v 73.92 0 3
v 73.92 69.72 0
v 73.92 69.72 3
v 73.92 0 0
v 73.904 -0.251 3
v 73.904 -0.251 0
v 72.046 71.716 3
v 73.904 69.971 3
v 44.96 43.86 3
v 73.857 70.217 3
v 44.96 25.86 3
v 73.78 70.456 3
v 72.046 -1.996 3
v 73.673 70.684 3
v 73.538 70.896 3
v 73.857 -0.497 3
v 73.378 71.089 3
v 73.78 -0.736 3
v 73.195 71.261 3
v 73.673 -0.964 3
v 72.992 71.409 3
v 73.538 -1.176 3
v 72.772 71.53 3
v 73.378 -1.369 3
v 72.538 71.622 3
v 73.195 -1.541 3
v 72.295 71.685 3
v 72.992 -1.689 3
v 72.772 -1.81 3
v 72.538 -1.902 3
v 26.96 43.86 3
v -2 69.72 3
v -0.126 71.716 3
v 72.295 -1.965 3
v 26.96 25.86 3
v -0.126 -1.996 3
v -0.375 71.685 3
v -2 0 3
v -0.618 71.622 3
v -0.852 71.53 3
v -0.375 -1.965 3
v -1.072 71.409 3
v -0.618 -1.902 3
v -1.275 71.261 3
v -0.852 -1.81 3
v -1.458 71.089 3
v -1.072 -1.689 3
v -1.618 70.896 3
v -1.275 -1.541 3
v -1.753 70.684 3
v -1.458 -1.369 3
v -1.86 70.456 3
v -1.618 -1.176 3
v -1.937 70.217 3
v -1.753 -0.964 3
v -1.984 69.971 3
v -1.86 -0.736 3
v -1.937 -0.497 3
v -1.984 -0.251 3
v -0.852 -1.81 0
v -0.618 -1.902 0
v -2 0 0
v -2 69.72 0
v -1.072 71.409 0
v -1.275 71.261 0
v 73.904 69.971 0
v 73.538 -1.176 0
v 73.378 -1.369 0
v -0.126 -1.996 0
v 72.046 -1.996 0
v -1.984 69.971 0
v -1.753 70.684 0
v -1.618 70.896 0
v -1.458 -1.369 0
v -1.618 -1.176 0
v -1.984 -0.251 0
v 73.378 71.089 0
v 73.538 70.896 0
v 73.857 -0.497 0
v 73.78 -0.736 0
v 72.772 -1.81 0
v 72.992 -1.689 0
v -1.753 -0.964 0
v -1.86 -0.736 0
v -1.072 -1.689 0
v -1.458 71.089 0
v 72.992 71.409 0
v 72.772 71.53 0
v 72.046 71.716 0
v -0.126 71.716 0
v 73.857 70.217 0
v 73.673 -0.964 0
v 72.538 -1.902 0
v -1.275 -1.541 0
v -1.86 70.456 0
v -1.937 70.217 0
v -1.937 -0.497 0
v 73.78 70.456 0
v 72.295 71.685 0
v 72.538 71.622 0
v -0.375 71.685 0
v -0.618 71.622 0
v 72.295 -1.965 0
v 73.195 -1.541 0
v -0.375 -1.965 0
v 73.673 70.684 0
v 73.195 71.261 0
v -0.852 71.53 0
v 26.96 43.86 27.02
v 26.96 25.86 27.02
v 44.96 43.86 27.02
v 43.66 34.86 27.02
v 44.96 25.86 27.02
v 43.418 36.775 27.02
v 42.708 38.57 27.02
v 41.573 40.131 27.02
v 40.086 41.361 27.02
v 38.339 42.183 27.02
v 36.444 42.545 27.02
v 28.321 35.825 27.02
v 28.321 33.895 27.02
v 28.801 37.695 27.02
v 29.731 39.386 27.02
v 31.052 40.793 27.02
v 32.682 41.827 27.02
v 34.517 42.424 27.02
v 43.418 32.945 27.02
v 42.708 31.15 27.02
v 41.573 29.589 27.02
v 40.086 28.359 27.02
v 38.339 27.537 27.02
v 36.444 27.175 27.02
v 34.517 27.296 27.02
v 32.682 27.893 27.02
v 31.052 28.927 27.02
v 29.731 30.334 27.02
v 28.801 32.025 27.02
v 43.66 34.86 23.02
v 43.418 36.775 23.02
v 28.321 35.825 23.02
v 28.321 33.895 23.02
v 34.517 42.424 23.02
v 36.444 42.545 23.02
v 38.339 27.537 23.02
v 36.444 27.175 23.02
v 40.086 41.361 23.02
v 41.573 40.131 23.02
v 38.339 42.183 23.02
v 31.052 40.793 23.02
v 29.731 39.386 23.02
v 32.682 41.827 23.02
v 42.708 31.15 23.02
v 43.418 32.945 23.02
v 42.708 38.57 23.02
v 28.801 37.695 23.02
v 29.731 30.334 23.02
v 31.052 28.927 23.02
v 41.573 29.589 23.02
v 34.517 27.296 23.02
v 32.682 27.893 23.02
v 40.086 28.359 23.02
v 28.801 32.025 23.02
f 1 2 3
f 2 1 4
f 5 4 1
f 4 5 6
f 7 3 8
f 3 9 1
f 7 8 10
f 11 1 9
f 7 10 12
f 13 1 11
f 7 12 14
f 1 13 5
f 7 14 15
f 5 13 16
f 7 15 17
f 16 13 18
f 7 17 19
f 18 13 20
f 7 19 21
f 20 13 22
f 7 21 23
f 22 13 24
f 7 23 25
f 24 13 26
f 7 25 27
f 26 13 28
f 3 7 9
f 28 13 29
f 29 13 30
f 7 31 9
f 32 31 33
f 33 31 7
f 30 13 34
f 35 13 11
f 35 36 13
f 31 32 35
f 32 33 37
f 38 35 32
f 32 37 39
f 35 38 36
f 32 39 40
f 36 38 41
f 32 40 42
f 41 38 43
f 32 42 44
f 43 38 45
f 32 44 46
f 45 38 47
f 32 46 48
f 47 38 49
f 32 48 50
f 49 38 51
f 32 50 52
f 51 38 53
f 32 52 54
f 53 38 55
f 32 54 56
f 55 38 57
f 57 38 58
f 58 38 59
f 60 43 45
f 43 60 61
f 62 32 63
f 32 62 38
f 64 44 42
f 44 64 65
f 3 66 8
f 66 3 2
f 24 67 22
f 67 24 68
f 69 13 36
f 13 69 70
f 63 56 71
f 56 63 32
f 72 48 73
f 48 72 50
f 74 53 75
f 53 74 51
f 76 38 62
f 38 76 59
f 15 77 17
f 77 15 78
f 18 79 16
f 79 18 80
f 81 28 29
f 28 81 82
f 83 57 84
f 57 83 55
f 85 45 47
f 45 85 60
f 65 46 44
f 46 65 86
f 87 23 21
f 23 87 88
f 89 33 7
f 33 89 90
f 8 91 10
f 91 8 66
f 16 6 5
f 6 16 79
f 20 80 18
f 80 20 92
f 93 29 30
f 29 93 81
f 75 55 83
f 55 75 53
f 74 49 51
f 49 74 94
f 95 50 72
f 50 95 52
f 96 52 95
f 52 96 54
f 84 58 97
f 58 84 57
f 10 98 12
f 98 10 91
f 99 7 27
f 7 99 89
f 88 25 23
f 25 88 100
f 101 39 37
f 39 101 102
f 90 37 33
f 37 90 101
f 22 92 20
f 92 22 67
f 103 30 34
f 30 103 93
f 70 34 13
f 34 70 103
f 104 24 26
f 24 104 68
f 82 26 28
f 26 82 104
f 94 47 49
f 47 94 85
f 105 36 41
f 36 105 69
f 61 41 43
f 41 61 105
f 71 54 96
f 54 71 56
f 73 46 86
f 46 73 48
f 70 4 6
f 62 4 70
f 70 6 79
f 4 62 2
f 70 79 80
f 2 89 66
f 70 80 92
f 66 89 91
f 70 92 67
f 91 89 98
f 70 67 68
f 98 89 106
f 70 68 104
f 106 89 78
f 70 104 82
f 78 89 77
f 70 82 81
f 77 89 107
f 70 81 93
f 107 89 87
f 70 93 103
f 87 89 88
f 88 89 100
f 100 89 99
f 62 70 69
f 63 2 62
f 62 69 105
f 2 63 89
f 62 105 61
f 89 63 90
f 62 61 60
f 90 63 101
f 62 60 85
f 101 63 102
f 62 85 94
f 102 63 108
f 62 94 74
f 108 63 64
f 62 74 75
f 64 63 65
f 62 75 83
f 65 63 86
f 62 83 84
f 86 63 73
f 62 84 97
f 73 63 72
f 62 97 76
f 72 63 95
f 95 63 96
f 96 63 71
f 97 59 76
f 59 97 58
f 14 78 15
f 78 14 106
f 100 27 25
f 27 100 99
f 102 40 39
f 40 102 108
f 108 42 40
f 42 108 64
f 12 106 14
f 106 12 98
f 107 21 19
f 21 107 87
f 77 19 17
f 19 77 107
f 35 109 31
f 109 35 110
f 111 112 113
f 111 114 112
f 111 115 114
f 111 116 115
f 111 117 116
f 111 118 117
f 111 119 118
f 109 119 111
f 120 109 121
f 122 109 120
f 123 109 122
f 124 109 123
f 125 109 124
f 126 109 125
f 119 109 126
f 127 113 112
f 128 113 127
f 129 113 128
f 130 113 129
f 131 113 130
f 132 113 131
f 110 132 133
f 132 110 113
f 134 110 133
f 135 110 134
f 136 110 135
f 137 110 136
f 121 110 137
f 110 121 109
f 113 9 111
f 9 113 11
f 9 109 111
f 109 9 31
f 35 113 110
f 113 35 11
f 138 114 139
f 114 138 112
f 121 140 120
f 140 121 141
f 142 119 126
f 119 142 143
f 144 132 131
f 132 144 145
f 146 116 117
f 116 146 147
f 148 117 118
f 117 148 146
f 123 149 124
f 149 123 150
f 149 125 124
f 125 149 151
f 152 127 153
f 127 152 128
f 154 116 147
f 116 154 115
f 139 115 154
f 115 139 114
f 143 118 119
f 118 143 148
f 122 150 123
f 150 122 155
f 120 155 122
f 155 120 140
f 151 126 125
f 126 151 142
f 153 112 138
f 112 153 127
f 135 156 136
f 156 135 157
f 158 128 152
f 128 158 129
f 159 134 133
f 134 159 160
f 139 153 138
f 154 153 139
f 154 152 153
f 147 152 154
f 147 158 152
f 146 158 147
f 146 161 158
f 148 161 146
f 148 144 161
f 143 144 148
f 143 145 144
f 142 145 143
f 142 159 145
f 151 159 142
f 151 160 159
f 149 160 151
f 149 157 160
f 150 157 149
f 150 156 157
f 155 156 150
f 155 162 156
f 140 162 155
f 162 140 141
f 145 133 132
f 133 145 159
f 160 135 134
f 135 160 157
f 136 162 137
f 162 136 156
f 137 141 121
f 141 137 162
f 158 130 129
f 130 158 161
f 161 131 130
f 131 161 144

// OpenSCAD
// file: SquareWithTrianglePileLib.scad
module LeftPile(wallThickness, totalHeight, singlePileHeight, singlePileWidth, singlePileLength, pileCount, openingSizePercent = .5){
    pileHeight = (pileCount * singlePileHeight) + .5;
    lengthOpeningSize = .00001;
    widthOpeningSize = singlePileWidth * openingSizePercent;
    blockerSize = (singlePileWidth - widthOpeningSize) / 2;
    
    translate([wallThickness, wallThickness, totalHeight - pileHeight])
        cube([singlePileLength, singlePileWidth, pileHeight]);
    
    y = singlePileWidth;
    a = 4.3;
    height = pileHeight;
    translate([wallThickness, wallThickness, totalHeight - pileHeight])
        rotate([0,0,90])
            polyhedron(
                points = 
                [
                    [0,0,0],
                    [y,0,0],
                    [y/2,a,0],
                    [0,0,height],
                    [y,0,height],
                    [y/2,a,height],
                ],
                faces = 
                [
                    [0,1,2],
                    [3,4,1,0],
                    [3,5,4],
                    [4,5,2,1],
                    [5,3,0,2]
                ]);   
    
//    translate([-.00001, wallThickness + (blockerSize), 0])
//        cube([wallThickness + lengthOpeningSize, widthOpeningSize, totalHeight]);
}

module RightPile(wallThickness, totalHeight, singlePileHeight, singlePileWidth, singlePileLength, pileCount, openingSizePercent = .75){
    translate([0, wallThickness + wallThickness + singlePileWidth, 0])
        rotate([0, 0, 180])
            LeftPile(wallThickness, totalHeight, singlePileHeight, singlePileWidth, singlePileLength, pileCount, openingSizePercent);
}

module BottomPile(wallThickness, totalHeight, singlePileHeight, singlePileWidth, singlePileLength, pileCount, openingSizePercent = .75){
    translate([wallThickness + wallThickness + singlePileWidth, 0, 0])
        rotate([0, 0, 90])
            LeftPile(wallThickness, totalHeight, singlePileHeight, singlePileWidth, singlePileLength, pileCount, openingSizePercent);
}

module TopPile(wallThickness, totalHeight, singlePileHeight, singlePileWidth, singlePileLength, pileCount, openingSizePercent = .75){
        rotate([0, 0, 270])
            LeftPile(wallThickness, totalHeight, singlePileHeight, singlePileWidth, singlePileLength, pileCount, openingSizePercent);
}
// file: SpaceAlertThreatTokensLib.scad
include<SquareWithTrianglePileLib.scad>
//side of triangle: 7.85
//sin x = o/h = 
singleThreatTokenPileHeight = 2.17;
singleThreatTokenPileWidth = 14.23 + .7;
singleThreatTokenPileLength = 9.76 + .7;

module LeftThreatTokenPile(wallThickness, totalHeight, threatTokenPileCount){
    LeftPile(
        wallThickness,
        totalHeight,
        singleThreatTokenPileHeight,
        singleThreatTokenPileWidth,
        singleThreatTokenPileLength,
        threatTokenPileCount);
}

module RightThreatTokenPile(wallThickness, totalHeight, threatTokenPileCount){
    RightPile(
        wallThickness,
        totalHeight,
        singleThreatTokenPileHeight,
        singleThreatTokenPileWidth,
        singleThreatTokenPileLength,
        threatTokenPileCount);
}

module BottomThreatTokenPile(wallThickness, totalHeight, threatTokenPileCount){
    BottomPile(
        wallThickness,
        totalHeight,
        singleThreatTokenPileHeight,
        singleThreatTokenPileWidth,
        singleThreatTokenPileLength,
        threatTokenPileCount);
}

module TopThreatTokenPile(wallThickness, totalHeight, threatTokenPileCount){
    TopPile(
        wallThickness,
        totalHeight,
        singleThreatTokenPileHeight,
        singleThreatTokenPileWidth,
        singleThreatTokenPileLength,
        threatTokenPileCount);
}

function threatTokenPileHeight(threatTokenPileCount) =
    (threatTokenPileCount * singleThreatTokenPileHeight) + .5;
// main file
include<SpaceAlertThreatTokensLib.scad>


length = 71.92;
width = 69.72;
height = 3;

//Based on magnet size:
pillarSideLength = 18;
pillarSideOffset = .5;

magnetBaseInnerDiameter = 15.4;
magnetHeight = 4.0;

spaceBetweenCircles = 2;
wallThickness = spaceBetweenCircles;
pillarHeight =  7.84 * 3 + .5 + height;

difference() {
union(){
    $fn=50;
    minkowski()
    {
      cube([length, width, height - 1]);
      cylinder(r=2,h=1);
    }

//    cube([length, width, height]);

//----------------------------------


            
//---------------------------------------------------------------------
    
          

//----------------------------------------
   
    translate([length/2 - ((pillarSideLength)/2), width/2 - ((pillarSideLength)/2), 0])
        cube([pillarSideLength, pillarSideLength, pillarHeight]);
        

}
    translate([length/2,  width/2, pillarHeight - magnetHeight])
        cylinder(magnetHeight, d=magnetBaseInnerDiameter);

}
